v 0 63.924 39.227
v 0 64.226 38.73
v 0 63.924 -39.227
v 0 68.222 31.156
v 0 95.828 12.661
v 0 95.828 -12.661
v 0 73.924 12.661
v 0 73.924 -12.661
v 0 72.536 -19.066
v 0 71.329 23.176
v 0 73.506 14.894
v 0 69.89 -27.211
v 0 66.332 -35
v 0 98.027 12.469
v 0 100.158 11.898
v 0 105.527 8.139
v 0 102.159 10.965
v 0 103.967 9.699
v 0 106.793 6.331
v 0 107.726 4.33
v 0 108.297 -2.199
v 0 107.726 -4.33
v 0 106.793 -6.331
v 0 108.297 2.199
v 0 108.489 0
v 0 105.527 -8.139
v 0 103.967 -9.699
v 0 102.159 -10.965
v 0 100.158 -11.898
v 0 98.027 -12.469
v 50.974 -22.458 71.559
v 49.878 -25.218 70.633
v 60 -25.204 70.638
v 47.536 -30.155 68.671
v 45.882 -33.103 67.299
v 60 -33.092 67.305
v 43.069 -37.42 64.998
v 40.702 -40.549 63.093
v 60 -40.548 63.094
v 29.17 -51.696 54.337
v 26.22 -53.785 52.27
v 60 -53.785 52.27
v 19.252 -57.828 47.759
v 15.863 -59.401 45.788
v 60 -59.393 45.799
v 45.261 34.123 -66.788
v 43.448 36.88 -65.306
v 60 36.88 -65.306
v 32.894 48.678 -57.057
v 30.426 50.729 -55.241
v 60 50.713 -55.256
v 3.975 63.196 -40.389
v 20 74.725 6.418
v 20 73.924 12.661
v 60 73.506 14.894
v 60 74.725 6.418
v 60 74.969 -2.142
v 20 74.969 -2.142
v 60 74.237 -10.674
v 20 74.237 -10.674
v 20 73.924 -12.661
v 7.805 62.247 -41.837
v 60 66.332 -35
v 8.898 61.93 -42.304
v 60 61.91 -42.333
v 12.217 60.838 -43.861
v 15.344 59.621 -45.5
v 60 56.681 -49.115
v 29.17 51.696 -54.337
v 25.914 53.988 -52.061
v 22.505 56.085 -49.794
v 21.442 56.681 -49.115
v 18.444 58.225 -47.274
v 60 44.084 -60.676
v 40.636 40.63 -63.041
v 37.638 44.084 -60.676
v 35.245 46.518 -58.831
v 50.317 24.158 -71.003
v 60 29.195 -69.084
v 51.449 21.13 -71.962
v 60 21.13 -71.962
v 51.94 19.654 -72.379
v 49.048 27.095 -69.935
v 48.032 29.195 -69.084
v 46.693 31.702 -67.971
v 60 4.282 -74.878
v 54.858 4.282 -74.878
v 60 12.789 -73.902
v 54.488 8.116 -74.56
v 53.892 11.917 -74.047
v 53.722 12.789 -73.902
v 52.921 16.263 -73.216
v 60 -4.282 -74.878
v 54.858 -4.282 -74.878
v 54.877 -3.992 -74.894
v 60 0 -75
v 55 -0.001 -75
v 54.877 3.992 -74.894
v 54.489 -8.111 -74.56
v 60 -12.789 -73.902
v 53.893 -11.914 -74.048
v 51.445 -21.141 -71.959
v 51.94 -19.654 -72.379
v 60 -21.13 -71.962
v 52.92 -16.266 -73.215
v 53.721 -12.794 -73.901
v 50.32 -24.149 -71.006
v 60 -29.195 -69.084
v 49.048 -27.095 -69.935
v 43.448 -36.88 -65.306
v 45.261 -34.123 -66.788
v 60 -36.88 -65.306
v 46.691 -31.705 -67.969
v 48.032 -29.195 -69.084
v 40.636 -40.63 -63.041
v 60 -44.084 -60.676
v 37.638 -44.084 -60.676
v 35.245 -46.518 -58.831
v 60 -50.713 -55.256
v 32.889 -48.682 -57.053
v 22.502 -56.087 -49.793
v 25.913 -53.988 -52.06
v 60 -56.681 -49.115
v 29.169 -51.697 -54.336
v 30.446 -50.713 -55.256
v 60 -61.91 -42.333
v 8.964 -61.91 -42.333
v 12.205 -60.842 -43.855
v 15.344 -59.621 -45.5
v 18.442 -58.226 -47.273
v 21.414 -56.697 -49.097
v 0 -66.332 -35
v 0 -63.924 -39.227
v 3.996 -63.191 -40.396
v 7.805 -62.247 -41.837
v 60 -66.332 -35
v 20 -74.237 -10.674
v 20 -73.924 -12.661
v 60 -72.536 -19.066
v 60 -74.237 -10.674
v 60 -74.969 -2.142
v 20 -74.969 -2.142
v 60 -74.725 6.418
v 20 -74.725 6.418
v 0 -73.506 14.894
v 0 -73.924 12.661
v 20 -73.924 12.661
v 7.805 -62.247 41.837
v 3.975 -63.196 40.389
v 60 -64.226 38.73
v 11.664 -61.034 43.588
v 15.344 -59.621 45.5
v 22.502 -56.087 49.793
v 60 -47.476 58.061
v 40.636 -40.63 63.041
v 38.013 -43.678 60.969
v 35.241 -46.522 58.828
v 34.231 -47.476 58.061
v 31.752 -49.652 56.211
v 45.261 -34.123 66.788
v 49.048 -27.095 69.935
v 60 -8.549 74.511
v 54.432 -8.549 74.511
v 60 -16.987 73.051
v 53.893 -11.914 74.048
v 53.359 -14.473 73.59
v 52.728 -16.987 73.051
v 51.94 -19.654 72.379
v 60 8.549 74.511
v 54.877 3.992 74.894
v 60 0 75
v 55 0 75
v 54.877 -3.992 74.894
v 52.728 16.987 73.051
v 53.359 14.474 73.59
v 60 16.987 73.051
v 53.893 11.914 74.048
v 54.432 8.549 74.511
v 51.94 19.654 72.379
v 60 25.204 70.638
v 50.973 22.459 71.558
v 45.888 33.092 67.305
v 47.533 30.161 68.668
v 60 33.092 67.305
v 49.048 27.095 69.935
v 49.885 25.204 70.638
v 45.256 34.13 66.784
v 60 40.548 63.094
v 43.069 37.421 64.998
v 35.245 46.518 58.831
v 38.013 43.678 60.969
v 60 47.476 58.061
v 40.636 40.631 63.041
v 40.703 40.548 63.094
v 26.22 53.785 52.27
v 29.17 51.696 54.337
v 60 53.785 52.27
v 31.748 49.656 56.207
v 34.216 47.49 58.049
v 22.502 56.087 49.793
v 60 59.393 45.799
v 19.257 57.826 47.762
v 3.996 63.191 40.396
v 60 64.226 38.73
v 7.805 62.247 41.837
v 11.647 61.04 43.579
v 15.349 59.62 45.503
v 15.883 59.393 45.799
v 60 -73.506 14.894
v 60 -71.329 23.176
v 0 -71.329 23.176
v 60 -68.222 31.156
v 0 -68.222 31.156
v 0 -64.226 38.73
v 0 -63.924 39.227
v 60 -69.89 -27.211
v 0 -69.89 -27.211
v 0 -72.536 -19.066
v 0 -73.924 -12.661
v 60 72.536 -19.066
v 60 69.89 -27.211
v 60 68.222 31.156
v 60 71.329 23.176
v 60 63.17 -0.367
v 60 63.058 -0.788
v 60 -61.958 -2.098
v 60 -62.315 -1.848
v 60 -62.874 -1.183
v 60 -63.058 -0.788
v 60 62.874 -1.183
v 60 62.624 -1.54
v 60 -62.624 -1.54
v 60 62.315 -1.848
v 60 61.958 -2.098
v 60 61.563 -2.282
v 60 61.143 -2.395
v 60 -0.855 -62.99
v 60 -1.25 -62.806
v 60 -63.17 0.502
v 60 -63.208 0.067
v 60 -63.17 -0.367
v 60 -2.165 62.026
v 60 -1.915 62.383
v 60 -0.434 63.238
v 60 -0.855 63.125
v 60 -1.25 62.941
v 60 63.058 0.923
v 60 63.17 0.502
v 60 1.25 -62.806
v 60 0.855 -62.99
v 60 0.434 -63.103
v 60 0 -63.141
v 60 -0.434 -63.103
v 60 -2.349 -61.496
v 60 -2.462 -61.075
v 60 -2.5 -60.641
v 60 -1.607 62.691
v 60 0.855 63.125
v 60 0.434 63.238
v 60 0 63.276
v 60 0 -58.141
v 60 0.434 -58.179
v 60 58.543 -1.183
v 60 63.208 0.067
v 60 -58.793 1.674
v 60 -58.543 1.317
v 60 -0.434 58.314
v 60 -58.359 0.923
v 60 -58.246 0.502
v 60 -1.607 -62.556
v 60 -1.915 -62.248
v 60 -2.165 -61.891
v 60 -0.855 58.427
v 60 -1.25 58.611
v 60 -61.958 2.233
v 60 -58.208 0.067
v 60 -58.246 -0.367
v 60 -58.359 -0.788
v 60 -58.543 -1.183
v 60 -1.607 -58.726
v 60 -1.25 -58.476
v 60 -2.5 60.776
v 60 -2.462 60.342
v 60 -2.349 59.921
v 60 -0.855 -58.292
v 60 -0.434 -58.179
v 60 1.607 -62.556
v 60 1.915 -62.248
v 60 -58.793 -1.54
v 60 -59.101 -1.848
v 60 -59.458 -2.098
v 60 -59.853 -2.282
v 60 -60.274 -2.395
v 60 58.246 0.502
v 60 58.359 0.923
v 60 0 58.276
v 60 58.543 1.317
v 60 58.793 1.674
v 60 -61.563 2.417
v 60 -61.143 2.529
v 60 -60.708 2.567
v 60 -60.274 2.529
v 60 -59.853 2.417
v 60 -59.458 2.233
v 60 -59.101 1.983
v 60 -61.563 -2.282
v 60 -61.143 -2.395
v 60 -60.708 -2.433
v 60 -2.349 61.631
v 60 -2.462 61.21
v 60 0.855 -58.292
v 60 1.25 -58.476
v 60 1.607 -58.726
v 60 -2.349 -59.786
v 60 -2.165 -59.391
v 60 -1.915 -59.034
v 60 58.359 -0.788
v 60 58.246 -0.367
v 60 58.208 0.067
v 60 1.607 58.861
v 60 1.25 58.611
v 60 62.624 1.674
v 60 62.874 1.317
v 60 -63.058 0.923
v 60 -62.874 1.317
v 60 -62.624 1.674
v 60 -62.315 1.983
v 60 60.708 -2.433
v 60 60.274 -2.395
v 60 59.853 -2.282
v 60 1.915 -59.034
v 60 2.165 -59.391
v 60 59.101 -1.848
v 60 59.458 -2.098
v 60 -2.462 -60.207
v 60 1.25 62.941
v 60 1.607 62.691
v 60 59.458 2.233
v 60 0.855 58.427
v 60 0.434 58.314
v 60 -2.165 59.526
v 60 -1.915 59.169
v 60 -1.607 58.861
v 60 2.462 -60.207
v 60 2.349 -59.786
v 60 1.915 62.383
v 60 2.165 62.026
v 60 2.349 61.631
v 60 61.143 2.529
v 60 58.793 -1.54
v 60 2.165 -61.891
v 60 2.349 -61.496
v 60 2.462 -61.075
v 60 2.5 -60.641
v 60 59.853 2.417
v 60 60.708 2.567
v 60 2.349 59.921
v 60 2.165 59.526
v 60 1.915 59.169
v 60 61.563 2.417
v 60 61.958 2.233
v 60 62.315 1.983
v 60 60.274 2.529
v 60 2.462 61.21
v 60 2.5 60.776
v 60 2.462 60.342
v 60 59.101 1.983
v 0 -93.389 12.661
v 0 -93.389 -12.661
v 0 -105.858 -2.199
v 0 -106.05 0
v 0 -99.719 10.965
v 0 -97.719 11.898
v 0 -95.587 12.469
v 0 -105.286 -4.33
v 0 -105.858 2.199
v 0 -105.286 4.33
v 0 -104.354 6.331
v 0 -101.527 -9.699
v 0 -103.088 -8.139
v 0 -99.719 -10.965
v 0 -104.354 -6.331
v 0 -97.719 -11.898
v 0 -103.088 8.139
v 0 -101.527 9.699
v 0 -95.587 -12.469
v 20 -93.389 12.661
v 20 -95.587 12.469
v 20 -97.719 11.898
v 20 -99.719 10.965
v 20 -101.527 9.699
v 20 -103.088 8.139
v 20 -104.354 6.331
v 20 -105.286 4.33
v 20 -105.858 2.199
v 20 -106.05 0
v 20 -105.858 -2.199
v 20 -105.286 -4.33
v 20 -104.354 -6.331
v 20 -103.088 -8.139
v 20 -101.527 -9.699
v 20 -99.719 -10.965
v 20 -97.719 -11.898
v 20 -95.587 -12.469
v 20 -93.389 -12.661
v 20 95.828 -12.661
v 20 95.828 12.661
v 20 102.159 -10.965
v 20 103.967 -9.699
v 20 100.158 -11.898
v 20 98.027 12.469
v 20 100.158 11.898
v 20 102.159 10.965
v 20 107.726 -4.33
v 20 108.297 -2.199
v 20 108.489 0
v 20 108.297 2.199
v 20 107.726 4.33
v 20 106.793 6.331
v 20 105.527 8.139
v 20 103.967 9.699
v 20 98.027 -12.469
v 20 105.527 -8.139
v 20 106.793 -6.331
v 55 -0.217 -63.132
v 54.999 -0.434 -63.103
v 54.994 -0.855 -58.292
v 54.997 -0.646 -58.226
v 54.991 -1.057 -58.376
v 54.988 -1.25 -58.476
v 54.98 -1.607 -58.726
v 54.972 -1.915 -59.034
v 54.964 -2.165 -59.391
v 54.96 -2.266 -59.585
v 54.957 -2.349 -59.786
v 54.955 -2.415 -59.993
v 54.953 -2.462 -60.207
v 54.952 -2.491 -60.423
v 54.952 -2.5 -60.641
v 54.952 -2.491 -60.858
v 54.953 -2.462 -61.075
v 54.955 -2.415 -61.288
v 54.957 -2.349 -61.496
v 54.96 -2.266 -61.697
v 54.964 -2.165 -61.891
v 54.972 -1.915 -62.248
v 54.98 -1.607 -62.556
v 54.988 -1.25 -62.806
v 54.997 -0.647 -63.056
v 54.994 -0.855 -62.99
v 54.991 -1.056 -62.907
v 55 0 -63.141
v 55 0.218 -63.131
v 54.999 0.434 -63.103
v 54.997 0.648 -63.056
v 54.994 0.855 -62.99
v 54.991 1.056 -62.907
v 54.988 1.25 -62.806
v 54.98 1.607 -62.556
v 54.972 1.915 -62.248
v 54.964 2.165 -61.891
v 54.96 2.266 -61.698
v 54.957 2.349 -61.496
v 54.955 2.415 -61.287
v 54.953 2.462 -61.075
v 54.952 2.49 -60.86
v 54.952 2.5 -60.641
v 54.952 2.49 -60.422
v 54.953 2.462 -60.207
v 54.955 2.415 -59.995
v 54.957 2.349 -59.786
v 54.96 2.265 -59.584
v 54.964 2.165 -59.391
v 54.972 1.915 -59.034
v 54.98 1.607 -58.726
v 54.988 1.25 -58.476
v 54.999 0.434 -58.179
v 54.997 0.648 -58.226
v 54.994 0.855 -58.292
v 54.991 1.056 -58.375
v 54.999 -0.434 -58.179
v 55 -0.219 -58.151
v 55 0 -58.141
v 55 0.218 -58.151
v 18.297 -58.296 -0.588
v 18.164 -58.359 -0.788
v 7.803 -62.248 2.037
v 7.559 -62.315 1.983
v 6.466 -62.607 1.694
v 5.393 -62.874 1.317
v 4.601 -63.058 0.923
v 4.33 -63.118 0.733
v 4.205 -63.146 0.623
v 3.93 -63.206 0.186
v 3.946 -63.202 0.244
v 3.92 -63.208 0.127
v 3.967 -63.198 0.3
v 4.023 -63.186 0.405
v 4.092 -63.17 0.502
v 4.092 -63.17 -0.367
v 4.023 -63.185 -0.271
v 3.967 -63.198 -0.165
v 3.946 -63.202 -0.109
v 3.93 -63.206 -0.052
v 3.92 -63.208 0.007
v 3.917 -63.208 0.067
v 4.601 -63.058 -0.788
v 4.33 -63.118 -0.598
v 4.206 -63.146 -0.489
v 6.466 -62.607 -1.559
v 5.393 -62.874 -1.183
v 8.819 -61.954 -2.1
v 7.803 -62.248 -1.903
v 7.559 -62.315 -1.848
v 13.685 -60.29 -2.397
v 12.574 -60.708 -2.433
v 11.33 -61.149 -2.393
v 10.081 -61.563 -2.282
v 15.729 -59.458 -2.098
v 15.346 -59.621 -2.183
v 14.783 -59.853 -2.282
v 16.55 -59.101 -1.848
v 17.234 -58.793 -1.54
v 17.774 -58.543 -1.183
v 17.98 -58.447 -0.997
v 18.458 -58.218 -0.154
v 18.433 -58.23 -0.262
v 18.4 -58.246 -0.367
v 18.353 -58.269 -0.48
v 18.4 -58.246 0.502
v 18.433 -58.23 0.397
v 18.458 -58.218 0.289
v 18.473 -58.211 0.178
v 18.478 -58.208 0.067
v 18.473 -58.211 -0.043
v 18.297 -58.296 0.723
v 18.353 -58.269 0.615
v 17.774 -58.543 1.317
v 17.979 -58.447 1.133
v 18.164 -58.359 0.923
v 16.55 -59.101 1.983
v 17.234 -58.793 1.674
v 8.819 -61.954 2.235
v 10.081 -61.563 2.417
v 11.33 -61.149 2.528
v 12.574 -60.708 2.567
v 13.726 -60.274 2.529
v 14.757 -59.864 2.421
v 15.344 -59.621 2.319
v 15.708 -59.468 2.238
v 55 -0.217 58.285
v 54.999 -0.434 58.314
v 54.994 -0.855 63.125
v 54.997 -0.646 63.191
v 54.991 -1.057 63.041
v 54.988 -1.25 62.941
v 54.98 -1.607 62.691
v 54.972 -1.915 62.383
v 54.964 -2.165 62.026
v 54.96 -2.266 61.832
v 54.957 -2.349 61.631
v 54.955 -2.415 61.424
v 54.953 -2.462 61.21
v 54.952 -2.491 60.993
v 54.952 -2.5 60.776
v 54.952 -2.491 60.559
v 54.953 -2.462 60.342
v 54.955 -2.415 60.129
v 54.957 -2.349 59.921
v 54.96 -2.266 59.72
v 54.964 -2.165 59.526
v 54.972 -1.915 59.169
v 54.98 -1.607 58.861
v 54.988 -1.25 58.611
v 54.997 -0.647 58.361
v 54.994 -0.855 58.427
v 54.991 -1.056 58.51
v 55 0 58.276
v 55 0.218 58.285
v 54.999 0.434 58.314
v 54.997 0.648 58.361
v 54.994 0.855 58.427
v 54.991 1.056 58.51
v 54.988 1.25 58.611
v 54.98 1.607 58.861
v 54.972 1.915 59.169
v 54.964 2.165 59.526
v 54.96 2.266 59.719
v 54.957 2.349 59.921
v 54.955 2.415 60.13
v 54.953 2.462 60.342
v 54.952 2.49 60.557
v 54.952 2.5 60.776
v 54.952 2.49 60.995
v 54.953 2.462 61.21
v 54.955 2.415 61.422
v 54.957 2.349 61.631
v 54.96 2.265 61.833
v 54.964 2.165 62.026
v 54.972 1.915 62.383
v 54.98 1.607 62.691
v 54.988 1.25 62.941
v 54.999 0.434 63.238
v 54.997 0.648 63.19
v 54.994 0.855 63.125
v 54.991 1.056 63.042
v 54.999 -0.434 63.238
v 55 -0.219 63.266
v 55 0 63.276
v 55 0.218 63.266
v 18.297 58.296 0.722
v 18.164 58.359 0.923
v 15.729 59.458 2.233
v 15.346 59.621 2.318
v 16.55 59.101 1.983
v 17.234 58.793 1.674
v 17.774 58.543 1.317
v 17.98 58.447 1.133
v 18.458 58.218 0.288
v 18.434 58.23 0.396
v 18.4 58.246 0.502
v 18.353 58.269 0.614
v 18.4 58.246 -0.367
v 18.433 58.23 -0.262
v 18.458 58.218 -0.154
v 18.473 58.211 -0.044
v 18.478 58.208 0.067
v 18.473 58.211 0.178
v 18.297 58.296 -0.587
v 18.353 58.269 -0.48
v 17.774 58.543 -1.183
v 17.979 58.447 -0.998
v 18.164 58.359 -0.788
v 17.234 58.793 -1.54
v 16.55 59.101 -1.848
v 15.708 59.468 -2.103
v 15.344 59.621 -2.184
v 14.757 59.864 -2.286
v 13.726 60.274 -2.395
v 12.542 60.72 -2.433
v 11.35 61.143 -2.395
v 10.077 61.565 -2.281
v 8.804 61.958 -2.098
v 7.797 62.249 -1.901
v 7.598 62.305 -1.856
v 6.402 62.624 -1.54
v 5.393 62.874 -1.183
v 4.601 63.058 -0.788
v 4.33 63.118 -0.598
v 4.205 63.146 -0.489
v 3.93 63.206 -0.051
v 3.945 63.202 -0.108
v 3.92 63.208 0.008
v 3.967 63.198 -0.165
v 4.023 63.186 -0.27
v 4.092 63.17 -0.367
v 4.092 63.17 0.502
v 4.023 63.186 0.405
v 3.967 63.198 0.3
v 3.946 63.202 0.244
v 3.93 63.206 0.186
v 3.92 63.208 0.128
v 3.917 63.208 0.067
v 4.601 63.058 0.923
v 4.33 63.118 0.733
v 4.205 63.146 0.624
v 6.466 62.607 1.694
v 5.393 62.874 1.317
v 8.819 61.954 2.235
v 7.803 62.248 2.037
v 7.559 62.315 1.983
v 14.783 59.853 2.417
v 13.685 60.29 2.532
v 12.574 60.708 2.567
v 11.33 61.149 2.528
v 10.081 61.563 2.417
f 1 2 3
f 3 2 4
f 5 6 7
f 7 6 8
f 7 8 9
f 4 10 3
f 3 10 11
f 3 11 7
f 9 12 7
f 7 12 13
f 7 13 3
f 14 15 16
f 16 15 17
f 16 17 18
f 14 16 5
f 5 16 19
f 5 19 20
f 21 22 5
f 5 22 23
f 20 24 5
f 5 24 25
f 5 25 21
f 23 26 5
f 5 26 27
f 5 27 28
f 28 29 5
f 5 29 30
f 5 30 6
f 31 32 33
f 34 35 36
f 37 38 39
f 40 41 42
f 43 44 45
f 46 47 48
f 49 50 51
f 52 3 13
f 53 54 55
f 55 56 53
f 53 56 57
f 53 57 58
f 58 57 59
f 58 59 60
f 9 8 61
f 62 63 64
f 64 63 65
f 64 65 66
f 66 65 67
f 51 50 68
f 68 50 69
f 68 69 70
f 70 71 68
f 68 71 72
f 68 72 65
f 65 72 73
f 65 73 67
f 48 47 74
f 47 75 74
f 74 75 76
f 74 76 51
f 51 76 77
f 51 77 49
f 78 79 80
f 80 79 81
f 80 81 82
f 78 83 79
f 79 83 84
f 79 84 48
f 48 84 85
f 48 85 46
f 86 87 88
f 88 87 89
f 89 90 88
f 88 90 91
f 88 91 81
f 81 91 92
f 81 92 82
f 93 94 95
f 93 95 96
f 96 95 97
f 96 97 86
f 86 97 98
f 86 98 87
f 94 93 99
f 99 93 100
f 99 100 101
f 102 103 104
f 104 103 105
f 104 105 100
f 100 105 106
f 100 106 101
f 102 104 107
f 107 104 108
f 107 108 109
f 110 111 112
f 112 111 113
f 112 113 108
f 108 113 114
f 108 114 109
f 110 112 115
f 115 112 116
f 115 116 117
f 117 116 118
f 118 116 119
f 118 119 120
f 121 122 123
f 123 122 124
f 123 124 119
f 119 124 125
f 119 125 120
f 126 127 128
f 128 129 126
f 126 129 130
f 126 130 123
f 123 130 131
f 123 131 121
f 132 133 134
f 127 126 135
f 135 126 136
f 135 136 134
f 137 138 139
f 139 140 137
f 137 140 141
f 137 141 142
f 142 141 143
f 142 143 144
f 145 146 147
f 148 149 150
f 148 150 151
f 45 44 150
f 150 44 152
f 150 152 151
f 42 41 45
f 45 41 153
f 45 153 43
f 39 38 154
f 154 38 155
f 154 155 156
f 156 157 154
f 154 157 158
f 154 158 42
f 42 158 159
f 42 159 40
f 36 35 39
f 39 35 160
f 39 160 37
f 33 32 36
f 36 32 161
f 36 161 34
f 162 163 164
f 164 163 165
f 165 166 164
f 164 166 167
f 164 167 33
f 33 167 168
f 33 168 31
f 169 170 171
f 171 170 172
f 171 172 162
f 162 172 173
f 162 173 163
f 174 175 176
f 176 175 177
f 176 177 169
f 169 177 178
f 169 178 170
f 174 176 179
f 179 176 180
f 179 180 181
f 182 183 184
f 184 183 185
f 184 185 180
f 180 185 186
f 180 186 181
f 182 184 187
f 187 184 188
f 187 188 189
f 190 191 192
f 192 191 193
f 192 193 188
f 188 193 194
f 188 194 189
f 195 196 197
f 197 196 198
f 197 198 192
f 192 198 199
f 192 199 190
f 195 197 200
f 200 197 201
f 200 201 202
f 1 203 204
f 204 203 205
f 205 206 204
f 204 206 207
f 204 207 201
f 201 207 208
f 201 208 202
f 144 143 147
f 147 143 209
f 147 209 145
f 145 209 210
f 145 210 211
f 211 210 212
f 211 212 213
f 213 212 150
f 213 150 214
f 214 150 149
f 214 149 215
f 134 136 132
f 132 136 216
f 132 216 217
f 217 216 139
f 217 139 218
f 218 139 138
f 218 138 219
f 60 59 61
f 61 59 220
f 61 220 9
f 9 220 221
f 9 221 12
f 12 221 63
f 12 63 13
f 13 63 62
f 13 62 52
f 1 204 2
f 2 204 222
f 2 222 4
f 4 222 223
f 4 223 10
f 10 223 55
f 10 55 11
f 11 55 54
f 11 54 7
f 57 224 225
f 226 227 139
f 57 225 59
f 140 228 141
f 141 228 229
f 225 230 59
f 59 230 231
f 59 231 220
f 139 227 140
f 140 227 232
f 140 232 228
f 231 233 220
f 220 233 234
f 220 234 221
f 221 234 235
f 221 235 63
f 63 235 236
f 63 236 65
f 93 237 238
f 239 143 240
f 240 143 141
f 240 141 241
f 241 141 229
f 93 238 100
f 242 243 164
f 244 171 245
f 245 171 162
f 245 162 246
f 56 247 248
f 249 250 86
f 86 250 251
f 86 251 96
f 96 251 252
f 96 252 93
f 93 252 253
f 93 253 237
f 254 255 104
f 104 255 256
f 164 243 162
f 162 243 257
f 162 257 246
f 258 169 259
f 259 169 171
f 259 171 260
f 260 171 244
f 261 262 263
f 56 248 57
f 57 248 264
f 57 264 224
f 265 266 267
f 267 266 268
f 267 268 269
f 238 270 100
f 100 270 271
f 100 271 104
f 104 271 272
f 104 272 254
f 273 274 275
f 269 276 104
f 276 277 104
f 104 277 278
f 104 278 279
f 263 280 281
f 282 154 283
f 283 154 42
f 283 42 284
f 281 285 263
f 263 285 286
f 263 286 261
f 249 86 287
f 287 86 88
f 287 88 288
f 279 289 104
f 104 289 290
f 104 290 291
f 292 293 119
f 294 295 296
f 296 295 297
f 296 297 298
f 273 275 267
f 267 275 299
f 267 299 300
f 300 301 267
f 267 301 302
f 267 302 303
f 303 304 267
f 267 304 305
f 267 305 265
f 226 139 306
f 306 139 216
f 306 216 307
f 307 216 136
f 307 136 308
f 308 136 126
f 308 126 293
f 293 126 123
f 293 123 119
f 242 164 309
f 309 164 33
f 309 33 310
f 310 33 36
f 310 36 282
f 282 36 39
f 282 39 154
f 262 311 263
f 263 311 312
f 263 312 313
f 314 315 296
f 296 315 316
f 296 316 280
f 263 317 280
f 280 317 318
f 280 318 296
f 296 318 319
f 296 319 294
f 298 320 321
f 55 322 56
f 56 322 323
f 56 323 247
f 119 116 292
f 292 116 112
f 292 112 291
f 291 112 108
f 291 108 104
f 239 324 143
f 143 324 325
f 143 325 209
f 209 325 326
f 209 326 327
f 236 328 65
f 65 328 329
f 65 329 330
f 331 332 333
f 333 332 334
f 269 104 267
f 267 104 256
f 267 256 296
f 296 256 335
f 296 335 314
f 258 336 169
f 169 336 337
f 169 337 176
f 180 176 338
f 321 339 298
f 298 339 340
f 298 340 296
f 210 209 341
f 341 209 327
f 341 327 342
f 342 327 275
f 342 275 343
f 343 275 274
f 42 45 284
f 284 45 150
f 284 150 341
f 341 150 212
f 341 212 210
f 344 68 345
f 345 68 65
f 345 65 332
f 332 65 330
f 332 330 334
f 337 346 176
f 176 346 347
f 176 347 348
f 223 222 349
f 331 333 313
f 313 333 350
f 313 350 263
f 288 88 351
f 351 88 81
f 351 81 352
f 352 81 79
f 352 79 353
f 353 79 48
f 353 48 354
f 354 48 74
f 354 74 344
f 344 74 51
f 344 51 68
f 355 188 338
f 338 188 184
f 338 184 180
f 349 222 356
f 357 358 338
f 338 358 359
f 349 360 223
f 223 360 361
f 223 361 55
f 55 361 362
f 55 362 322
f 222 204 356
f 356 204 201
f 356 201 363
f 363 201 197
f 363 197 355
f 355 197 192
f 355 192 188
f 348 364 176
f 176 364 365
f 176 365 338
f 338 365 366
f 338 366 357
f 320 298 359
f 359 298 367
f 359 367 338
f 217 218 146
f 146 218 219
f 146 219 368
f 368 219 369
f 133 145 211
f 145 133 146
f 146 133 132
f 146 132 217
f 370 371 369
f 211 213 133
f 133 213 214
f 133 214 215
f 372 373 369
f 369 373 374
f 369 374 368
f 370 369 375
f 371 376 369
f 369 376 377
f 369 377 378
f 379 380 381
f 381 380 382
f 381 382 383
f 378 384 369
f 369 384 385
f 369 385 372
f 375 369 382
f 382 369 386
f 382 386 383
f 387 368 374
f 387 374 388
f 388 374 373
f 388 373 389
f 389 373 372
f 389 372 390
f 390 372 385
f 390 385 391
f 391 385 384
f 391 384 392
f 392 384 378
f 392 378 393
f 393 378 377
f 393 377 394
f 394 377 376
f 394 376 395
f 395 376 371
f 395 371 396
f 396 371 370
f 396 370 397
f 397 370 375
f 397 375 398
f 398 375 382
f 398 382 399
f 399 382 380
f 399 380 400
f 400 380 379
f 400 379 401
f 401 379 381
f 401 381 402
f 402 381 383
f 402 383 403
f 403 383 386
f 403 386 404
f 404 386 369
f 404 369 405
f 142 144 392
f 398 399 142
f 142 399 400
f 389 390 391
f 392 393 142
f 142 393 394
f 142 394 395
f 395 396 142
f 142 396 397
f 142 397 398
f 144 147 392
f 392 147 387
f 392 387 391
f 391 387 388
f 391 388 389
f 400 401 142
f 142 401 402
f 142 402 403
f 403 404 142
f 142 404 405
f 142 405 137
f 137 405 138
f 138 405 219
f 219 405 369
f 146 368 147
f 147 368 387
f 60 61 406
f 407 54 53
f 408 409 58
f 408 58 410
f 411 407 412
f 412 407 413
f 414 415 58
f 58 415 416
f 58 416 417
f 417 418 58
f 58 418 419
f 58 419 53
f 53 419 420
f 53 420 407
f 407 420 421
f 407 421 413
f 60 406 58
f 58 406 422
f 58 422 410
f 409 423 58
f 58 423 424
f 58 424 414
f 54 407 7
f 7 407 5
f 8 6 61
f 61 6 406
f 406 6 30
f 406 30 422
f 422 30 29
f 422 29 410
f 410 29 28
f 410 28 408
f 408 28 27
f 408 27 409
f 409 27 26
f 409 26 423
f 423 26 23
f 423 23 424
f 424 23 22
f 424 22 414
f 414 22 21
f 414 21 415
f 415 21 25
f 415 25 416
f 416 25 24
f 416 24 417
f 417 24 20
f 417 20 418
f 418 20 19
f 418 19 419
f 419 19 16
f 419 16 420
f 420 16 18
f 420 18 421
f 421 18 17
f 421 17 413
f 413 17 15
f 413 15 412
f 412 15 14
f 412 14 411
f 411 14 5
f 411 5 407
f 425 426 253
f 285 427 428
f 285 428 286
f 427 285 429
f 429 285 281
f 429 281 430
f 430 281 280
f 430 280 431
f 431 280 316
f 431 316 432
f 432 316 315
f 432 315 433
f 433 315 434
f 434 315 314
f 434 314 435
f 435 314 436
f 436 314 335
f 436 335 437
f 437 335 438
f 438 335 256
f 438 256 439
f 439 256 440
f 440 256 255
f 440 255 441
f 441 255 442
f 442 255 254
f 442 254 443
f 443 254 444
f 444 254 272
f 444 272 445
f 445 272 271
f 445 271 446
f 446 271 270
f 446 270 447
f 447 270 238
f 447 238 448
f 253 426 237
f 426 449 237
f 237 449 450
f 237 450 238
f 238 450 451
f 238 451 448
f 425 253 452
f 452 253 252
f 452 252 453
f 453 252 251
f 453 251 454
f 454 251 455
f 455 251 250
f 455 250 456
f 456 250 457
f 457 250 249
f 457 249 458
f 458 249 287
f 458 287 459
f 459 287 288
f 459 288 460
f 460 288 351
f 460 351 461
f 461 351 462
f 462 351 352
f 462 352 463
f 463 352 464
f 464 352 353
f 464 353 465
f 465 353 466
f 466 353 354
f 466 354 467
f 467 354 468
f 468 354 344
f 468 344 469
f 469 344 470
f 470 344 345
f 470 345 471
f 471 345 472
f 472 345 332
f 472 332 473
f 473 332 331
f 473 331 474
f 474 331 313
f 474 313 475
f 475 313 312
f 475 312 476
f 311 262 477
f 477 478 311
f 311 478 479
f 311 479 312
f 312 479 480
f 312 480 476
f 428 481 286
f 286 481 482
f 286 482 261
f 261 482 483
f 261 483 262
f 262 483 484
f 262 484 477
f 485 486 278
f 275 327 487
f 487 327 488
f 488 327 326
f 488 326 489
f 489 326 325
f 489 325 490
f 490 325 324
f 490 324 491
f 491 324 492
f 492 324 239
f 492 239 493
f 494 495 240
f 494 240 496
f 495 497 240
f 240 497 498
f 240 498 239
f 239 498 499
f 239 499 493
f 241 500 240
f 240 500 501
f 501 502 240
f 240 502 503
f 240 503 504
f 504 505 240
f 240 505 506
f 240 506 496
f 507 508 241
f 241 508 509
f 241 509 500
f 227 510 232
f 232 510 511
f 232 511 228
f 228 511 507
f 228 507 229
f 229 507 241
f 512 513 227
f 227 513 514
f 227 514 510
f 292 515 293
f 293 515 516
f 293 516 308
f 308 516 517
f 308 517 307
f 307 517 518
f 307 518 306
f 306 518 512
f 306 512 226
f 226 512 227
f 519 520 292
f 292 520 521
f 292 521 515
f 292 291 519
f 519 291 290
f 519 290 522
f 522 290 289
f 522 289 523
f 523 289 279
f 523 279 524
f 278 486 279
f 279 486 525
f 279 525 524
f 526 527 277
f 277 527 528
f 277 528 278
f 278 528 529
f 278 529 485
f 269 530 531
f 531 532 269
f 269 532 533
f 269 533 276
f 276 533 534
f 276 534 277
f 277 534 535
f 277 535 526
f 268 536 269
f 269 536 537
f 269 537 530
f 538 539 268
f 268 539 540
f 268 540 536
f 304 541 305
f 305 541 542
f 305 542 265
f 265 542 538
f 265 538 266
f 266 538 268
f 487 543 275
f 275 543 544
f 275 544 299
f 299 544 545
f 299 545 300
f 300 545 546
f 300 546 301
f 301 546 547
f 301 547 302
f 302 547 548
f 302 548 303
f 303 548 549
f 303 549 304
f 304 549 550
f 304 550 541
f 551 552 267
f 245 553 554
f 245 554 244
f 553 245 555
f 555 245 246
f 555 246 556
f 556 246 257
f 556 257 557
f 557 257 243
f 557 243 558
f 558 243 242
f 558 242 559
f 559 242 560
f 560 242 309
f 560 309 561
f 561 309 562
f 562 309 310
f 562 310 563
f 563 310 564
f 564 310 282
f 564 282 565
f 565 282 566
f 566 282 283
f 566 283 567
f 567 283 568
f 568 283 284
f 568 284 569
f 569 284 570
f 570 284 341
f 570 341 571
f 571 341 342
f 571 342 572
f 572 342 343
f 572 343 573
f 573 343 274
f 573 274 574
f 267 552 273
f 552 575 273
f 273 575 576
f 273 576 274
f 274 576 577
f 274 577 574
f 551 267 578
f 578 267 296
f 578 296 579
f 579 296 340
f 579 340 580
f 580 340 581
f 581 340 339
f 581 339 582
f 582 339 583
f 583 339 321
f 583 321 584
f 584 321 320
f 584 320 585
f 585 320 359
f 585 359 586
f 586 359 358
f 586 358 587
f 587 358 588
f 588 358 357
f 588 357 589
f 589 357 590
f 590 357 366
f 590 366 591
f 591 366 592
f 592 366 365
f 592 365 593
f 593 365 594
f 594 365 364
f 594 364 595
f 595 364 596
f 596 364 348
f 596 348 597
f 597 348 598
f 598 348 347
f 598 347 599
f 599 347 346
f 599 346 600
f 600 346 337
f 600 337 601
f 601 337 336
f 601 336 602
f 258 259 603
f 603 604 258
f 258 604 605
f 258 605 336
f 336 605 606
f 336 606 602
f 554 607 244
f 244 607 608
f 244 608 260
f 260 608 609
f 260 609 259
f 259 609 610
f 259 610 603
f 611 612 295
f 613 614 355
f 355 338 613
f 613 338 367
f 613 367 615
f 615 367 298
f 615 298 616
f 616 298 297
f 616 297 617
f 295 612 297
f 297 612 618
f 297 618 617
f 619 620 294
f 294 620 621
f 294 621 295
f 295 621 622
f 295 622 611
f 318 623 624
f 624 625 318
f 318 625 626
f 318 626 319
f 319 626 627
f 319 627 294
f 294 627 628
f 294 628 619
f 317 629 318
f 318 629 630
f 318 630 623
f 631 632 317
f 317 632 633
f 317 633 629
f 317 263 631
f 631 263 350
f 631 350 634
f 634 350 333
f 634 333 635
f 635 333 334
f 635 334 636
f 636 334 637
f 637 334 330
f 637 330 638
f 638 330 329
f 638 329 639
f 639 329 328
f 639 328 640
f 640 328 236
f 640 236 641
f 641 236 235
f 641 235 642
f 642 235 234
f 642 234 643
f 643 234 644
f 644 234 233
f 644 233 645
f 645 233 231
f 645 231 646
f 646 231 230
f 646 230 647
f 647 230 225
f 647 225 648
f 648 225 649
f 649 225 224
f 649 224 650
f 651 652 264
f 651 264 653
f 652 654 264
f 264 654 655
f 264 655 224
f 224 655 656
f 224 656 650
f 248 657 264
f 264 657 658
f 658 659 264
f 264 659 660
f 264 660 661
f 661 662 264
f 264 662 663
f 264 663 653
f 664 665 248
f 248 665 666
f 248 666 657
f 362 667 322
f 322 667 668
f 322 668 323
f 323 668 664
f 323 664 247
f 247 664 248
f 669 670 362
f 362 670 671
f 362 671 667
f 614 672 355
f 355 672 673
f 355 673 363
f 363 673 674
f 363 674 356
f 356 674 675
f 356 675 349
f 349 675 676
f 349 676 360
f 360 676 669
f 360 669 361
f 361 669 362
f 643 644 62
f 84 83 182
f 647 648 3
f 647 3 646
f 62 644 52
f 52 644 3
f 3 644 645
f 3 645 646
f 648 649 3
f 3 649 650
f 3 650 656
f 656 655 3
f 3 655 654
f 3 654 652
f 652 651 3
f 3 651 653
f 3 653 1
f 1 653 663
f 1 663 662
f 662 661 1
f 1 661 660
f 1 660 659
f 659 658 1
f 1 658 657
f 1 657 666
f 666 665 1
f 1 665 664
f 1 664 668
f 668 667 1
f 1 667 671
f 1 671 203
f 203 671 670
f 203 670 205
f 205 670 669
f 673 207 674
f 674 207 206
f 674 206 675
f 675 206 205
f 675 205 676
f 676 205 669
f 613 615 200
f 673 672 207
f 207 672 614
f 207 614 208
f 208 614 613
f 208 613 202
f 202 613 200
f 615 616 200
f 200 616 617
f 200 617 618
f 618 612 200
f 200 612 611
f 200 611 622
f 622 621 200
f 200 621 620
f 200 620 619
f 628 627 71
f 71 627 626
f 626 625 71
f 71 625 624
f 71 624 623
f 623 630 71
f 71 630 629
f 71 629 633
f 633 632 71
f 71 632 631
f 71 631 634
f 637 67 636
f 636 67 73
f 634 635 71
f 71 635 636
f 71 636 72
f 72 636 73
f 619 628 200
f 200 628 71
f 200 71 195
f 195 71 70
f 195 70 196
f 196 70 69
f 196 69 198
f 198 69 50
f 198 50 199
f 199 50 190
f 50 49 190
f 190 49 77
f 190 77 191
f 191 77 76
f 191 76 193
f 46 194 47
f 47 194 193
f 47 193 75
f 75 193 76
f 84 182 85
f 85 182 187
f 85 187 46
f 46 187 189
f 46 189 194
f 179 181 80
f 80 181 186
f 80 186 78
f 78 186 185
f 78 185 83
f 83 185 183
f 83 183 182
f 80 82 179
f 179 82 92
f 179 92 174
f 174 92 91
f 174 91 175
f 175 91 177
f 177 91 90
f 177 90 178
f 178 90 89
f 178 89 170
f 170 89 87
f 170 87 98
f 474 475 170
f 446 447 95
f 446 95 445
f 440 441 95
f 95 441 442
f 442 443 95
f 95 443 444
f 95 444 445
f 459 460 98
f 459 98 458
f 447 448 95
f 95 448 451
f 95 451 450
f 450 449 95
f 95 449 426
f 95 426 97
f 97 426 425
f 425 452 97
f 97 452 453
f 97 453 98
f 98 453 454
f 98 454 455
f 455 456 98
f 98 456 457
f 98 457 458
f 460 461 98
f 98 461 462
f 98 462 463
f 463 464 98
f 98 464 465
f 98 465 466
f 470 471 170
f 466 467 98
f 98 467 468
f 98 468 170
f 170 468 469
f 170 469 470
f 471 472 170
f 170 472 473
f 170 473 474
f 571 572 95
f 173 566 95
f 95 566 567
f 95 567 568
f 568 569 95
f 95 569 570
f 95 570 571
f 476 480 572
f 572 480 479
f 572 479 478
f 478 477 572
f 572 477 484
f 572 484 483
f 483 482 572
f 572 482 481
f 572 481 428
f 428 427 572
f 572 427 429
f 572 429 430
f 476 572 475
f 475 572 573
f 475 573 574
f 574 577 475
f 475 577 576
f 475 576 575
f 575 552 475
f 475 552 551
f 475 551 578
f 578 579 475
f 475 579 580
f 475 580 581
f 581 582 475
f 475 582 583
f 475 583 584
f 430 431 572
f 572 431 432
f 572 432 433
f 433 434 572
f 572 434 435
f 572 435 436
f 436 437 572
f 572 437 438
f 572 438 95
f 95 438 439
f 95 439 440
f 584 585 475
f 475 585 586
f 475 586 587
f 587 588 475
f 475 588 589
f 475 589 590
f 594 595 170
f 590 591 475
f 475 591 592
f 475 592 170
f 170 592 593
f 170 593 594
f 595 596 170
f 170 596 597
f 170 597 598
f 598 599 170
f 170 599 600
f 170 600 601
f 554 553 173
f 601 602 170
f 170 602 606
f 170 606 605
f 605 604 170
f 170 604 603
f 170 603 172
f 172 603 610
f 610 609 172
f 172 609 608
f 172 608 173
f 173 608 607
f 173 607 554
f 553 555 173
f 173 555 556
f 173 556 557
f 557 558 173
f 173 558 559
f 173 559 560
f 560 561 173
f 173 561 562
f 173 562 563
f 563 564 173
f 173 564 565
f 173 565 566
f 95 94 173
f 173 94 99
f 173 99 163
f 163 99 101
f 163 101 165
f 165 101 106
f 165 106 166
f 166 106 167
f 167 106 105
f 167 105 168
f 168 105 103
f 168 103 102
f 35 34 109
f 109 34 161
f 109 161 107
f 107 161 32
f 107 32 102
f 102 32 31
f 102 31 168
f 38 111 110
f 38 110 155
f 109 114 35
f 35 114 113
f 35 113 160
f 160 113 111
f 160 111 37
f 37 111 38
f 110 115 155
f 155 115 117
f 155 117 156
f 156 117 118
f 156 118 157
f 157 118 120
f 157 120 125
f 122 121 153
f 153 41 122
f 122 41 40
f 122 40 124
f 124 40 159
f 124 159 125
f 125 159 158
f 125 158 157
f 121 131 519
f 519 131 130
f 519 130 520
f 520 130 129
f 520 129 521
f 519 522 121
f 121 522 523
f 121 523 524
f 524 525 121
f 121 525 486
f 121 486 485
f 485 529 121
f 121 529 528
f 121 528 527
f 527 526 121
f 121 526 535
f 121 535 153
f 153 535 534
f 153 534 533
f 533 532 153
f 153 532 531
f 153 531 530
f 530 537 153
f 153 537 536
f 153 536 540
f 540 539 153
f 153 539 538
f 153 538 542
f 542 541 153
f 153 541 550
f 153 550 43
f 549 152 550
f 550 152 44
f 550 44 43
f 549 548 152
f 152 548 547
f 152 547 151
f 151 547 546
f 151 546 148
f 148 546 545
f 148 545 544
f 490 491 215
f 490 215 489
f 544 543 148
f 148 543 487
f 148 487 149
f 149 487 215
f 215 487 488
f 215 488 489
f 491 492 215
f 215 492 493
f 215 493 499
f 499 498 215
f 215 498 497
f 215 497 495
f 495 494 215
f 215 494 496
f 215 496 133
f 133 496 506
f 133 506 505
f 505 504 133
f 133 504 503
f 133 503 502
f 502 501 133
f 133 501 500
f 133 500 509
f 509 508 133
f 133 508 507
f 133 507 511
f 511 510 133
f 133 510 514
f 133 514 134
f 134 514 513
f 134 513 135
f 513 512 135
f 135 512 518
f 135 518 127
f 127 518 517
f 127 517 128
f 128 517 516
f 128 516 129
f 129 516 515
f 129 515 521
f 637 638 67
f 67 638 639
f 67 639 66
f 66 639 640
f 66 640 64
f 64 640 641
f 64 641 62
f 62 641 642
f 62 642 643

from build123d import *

# Parameters (mm, degrees)
SKETCH1_R               = 75
BOSS_EXTRUDE1_DEPTH     = 60
BOSS_EXTRUDE2_DEPTH     = 20
SKETCH6_R               = 2.5
CUT_EXTRUDE4_DEPTH      = 145.896339998
CIRPATTERN1_COUNT       = 4
CUT_EXTRUDE3_DEPTH      = 145.896339998
CUT_EXTRUDE3_DEPTH_BACK = 145.896339998


with BuildPart() as part:
    # Sketch1 → Boss-Extrude1 (new body)
    with BuildSketch(Plane(origin=(0, 0, 0), x_dir=(0, 0, -1), z_dir=(1, 0, 0))):
        with Locations(Location((0, 0, 0), (0, 0, 180))):
            Circle(SKETCH1_R)
    extrude(amount=BOSS_EXTRUDE1_DEPTH)

    # Sketch5 → Boss-Extrude2 (add)
    with BuildSketch(Plane(origin=(0, 0, 0), x_dir=(0, 0, -1), z_dir=(1, 0, 0))):
        with BuildLine():
            Line((12.661492774, 95.827904611), (12.661492774, -93.388552108))
            ThreePointArc((12.661492774, -93.388552108), (0, -106.050044882), (-12.661492774, -93.388552108))
            Line((-12.661492774, -93.388552108), (-12.661492774, 95.827904611))
            ThreePointArc((-12.661492774, 95.827904611), (0, 108.489397385), (12.661492774, 95.827904611))
        make_face()
    extrude(amount=BOSS_EXTRUDE2_DEPTH)

    # Sketch6 → Cut-Extrude4 (cut, symmetric)
    with BuildSketch(Plane(origin=(0, 0, 0), x_dir=(0, 0, -1), z_dir=(1, 0, 0))):
        with Locations(Location((60.640992129, 0, 0), (0, 0, 180))):
            Circle(SKETCH6_R)
    cut_extrude4 = extrude(amount=CUT_EXTRUDE4_DEPTH, both=True, mode=Mode.SUBTRACT)

    # CirPattern1: Cut-Extrude4 ×4 about axis
    cirpattern1_axis = Axis((0, 0, 0.067453829), (1, 0, 0))
    for i in range(1, CIRPATTERN1_COUNT):
        add(cut_extrude4.rotate(cirpattern1_axis, i * 360 / CIRPATTERN1_COUNT), mode=Mode.SUBTRACT)

    # Sketch3 → Cut-Extrude3 (cut, two sides: drawn at the far end of the back side and taken through both)
    with BuildSketch(Plane.XY.offset(-CUT_EXTRUDE3_DEPTH_BACK)):
        with BuildLine():
            Line((0, 63.92351859), (0, -63.92351859))
            ThreePointArc((0, -63.92351859), (55, 0), (0, 63.92351859))
        make_face()
    extrude(amount=CUT_EXTRUDE3_DEPTH + CUT_EXTRUDE3_DEPTH_BACK, mode=Mode.SUBTRACT)


solid = part.part
